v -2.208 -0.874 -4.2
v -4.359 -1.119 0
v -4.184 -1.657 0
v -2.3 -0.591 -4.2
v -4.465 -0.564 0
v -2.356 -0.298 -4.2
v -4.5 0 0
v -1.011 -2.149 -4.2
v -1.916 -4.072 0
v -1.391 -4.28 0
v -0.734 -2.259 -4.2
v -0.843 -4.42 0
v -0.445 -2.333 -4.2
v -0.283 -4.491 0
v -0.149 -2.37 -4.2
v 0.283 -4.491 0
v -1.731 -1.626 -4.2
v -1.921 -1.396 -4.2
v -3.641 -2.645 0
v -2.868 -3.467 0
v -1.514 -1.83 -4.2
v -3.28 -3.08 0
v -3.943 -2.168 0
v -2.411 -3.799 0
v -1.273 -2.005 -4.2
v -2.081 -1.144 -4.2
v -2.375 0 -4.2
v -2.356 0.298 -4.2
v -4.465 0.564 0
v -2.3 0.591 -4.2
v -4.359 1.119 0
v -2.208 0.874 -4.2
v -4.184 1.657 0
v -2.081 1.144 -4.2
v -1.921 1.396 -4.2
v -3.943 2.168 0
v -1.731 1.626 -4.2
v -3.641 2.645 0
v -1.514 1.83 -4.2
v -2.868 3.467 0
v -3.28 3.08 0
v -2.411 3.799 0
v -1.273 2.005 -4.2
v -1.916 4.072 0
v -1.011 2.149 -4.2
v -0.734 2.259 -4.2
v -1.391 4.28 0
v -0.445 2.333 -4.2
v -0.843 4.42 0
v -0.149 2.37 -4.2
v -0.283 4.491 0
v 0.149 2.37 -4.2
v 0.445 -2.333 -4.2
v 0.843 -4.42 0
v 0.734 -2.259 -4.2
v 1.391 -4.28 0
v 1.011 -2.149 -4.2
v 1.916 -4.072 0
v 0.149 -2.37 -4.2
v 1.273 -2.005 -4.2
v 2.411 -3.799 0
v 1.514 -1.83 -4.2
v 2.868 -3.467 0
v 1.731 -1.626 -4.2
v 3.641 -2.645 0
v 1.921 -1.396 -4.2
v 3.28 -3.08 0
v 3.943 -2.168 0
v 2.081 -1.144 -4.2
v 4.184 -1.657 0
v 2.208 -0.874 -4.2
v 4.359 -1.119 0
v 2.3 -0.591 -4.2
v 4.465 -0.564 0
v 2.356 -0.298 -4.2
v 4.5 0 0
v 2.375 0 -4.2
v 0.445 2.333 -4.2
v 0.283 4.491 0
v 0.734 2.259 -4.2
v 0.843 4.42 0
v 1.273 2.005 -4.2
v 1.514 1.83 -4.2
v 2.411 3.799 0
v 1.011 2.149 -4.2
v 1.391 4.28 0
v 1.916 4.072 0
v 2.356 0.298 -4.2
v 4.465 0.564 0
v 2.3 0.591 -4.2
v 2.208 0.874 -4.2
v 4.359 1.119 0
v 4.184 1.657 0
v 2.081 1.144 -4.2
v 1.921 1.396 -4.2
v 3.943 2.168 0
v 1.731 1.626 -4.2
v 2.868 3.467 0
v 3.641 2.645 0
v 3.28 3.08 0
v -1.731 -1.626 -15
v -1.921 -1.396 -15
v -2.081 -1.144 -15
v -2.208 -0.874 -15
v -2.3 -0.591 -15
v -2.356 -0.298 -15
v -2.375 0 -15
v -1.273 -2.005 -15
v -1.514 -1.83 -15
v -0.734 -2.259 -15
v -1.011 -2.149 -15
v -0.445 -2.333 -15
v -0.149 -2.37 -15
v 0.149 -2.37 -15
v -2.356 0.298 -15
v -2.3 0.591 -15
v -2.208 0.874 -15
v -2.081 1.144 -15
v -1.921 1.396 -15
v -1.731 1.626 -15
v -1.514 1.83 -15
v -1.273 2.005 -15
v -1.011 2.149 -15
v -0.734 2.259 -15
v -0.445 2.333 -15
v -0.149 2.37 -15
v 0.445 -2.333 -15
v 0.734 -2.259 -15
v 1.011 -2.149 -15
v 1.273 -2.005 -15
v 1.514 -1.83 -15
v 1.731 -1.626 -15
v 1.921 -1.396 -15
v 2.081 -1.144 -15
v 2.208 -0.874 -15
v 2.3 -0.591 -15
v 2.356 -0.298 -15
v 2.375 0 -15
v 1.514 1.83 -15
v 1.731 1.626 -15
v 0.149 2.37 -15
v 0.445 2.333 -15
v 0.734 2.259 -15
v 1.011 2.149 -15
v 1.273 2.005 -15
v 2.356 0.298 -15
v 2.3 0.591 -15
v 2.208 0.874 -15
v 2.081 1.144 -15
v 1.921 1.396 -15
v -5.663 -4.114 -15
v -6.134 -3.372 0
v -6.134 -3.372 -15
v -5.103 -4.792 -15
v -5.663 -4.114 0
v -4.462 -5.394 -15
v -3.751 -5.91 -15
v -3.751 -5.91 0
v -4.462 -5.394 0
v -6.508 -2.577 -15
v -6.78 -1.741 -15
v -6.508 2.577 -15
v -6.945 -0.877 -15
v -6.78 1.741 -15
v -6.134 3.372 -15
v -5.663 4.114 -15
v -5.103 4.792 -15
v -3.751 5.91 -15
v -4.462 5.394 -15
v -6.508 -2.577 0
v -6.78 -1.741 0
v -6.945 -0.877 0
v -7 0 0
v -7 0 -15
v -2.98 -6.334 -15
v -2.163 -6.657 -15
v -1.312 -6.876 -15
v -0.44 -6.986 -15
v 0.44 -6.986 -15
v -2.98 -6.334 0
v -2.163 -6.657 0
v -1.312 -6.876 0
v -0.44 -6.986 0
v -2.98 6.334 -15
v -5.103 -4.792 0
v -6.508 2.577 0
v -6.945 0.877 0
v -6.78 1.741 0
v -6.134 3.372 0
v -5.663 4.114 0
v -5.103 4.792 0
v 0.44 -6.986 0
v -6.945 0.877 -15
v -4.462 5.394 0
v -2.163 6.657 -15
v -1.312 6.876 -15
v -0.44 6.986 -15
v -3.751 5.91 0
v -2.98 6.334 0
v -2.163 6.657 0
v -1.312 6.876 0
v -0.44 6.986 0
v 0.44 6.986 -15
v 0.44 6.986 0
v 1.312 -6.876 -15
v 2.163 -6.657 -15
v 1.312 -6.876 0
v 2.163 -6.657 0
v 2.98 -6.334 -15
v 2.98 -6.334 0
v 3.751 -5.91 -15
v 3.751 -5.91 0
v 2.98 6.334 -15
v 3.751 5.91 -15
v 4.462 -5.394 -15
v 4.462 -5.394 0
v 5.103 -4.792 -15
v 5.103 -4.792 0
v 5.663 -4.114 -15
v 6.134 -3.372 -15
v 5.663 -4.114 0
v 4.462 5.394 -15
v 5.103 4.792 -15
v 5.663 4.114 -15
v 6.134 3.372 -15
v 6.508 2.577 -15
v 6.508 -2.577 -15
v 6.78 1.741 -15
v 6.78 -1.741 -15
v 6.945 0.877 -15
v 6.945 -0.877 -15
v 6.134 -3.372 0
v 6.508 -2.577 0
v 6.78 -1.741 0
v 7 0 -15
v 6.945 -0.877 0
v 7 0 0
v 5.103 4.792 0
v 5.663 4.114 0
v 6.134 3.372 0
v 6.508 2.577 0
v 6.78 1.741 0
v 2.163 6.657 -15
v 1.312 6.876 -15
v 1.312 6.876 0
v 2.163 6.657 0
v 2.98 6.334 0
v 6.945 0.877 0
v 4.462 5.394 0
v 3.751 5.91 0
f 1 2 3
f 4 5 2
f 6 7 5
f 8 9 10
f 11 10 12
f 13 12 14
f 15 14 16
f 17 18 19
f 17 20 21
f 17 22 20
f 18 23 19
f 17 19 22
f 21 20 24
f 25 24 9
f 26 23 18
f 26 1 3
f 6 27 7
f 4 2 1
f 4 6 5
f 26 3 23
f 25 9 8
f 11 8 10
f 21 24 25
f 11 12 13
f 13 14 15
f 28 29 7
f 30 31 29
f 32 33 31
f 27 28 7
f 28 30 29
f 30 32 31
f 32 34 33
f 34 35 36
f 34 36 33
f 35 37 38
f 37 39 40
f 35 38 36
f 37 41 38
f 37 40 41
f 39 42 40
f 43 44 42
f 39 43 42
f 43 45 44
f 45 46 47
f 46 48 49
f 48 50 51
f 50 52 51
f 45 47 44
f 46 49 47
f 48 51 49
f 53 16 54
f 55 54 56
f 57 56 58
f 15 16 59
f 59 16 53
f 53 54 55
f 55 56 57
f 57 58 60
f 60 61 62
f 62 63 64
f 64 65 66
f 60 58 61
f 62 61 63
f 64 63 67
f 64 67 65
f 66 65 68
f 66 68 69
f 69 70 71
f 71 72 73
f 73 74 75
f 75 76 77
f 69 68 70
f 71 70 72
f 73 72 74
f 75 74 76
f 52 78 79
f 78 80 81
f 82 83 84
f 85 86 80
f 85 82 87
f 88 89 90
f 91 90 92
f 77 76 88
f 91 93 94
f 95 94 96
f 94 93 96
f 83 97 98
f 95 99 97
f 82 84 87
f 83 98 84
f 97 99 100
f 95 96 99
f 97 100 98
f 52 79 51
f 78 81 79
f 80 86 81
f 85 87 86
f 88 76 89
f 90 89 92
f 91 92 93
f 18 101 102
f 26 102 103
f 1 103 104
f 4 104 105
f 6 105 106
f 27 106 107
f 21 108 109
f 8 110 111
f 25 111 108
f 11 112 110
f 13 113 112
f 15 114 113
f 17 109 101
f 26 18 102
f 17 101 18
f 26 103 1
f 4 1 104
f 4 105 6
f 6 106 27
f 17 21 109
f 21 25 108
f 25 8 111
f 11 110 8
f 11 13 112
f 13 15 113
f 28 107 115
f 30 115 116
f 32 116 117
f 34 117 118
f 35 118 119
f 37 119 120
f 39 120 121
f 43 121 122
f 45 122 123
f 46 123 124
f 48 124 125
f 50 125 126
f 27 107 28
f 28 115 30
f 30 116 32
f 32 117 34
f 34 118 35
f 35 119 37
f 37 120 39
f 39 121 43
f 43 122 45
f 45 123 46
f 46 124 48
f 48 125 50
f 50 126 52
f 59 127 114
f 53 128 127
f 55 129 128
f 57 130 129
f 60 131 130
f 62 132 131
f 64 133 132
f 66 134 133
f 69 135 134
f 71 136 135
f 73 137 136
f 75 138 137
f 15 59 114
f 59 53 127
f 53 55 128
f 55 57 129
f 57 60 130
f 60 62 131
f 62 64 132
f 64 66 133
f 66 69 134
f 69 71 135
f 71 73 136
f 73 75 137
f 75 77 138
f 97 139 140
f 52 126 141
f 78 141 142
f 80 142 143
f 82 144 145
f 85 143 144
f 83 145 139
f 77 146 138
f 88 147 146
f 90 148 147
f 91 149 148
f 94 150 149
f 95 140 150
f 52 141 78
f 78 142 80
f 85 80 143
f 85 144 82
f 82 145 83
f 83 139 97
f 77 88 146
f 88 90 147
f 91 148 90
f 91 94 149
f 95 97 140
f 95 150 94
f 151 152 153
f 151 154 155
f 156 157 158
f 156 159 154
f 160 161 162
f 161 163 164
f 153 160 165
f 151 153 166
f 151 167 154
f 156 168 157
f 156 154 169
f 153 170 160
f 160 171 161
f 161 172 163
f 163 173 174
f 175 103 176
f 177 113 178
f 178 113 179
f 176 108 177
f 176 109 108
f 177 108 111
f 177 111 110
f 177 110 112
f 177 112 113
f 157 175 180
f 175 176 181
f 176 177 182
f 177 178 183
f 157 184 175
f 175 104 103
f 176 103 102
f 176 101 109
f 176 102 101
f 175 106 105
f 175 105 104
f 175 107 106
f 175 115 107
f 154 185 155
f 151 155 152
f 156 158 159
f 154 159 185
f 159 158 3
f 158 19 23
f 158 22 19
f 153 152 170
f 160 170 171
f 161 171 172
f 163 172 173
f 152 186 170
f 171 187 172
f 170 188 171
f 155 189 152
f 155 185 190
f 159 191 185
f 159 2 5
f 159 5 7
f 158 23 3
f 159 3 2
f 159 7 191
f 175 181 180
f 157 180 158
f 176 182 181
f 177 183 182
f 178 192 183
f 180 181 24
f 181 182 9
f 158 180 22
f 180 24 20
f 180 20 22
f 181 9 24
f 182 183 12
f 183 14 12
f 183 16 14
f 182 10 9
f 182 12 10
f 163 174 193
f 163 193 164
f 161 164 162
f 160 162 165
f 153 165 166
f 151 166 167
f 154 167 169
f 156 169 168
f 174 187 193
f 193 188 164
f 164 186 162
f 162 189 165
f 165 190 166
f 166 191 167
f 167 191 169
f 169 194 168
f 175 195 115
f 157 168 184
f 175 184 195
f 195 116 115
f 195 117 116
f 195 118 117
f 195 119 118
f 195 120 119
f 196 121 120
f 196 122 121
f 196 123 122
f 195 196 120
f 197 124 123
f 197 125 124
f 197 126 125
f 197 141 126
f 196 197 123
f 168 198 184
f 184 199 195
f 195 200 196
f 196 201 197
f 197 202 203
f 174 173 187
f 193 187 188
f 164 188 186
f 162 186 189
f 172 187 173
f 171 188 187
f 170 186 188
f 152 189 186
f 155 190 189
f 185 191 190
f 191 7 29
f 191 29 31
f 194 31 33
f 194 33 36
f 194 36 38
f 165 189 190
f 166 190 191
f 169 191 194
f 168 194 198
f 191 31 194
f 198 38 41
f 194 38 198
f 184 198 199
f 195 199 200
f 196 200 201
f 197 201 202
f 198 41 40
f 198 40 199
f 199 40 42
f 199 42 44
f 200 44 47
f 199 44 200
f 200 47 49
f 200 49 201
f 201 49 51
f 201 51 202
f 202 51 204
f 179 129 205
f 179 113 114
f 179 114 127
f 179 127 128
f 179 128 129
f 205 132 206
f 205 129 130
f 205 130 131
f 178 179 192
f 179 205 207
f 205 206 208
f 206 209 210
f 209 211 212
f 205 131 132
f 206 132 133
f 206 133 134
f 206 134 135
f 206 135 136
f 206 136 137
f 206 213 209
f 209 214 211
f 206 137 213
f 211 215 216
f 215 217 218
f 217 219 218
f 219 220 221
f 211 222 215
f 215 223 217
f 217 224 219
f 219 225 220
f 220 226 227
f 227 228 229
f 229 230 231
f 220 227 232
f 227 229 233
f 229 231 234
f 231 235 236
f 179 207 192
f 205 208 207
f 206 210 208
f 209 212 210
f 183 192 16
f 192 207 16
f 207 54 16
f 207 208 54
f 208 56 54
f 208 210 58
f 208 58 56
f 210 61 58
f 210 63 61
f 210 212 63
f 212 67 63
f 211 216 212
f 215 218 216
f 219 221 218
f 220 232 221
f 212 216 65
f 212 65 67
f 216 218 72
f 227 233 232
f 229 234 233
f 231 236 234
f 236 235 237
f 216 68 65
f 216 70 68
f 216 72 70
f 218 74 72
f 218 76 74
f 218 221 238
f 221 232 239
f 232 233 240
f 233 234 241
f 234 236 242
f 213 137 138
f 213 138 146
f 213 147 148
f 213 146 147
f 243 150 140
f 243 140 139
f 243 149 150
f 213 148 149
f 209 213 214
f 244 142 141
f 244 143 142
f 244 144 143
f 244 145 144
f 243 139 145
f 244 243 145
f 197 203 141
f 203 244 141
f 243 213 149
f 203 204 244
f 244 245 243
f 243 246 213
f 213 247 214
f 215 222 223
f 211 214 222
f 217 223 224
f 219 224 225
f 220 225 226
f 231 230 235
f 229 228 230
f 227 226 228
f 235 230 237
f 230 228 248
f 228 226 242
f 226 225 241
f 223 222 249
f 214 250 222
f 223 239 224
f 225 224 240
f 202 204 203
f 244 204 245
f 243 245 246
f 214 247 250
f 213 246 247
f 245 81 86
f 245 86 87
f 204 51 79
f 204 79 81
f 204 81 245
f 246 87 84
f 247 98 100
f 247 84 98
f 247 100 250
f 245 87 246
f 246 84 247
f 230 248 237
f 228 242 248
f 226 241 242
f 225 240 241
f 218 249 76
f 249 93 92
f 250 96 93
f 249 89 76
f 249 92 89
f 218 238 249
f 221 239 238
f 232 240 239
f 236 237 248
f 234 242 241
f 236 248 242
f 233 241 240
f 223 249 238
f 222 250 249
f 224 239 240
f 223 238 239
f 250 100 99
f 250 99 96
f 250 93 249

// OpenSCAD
$fn = 50;

difference() {
	union() {
		translate(v = [0, 0, -15.0]) {
			cylinder(h = 15, r = 7.0);
		}
	}
	union() {
		translate(v = [0, 0, 0]) {
			rotate(a = [0, 0, 0]) {
				difference() {
					union() {
						translate(v = [0, 0, -18.0]) {
							cylinder(h = 18, r = 2.25);
						}
						translate(v = [0, 0, -4.2]) {
							cylinder(h = 4.2, r1 = 2.375, r2 = 4.5);
						}
						translate(v = [0, 0, -18.0]) {
							cylinder(h = 18, r = 2.375);
						}
						translate(v = [0, 0, -18.0]) {
							cylinder(h = 18, r = 2.25);
						}
					}
					union();
				}
			}
		}
	}
}
